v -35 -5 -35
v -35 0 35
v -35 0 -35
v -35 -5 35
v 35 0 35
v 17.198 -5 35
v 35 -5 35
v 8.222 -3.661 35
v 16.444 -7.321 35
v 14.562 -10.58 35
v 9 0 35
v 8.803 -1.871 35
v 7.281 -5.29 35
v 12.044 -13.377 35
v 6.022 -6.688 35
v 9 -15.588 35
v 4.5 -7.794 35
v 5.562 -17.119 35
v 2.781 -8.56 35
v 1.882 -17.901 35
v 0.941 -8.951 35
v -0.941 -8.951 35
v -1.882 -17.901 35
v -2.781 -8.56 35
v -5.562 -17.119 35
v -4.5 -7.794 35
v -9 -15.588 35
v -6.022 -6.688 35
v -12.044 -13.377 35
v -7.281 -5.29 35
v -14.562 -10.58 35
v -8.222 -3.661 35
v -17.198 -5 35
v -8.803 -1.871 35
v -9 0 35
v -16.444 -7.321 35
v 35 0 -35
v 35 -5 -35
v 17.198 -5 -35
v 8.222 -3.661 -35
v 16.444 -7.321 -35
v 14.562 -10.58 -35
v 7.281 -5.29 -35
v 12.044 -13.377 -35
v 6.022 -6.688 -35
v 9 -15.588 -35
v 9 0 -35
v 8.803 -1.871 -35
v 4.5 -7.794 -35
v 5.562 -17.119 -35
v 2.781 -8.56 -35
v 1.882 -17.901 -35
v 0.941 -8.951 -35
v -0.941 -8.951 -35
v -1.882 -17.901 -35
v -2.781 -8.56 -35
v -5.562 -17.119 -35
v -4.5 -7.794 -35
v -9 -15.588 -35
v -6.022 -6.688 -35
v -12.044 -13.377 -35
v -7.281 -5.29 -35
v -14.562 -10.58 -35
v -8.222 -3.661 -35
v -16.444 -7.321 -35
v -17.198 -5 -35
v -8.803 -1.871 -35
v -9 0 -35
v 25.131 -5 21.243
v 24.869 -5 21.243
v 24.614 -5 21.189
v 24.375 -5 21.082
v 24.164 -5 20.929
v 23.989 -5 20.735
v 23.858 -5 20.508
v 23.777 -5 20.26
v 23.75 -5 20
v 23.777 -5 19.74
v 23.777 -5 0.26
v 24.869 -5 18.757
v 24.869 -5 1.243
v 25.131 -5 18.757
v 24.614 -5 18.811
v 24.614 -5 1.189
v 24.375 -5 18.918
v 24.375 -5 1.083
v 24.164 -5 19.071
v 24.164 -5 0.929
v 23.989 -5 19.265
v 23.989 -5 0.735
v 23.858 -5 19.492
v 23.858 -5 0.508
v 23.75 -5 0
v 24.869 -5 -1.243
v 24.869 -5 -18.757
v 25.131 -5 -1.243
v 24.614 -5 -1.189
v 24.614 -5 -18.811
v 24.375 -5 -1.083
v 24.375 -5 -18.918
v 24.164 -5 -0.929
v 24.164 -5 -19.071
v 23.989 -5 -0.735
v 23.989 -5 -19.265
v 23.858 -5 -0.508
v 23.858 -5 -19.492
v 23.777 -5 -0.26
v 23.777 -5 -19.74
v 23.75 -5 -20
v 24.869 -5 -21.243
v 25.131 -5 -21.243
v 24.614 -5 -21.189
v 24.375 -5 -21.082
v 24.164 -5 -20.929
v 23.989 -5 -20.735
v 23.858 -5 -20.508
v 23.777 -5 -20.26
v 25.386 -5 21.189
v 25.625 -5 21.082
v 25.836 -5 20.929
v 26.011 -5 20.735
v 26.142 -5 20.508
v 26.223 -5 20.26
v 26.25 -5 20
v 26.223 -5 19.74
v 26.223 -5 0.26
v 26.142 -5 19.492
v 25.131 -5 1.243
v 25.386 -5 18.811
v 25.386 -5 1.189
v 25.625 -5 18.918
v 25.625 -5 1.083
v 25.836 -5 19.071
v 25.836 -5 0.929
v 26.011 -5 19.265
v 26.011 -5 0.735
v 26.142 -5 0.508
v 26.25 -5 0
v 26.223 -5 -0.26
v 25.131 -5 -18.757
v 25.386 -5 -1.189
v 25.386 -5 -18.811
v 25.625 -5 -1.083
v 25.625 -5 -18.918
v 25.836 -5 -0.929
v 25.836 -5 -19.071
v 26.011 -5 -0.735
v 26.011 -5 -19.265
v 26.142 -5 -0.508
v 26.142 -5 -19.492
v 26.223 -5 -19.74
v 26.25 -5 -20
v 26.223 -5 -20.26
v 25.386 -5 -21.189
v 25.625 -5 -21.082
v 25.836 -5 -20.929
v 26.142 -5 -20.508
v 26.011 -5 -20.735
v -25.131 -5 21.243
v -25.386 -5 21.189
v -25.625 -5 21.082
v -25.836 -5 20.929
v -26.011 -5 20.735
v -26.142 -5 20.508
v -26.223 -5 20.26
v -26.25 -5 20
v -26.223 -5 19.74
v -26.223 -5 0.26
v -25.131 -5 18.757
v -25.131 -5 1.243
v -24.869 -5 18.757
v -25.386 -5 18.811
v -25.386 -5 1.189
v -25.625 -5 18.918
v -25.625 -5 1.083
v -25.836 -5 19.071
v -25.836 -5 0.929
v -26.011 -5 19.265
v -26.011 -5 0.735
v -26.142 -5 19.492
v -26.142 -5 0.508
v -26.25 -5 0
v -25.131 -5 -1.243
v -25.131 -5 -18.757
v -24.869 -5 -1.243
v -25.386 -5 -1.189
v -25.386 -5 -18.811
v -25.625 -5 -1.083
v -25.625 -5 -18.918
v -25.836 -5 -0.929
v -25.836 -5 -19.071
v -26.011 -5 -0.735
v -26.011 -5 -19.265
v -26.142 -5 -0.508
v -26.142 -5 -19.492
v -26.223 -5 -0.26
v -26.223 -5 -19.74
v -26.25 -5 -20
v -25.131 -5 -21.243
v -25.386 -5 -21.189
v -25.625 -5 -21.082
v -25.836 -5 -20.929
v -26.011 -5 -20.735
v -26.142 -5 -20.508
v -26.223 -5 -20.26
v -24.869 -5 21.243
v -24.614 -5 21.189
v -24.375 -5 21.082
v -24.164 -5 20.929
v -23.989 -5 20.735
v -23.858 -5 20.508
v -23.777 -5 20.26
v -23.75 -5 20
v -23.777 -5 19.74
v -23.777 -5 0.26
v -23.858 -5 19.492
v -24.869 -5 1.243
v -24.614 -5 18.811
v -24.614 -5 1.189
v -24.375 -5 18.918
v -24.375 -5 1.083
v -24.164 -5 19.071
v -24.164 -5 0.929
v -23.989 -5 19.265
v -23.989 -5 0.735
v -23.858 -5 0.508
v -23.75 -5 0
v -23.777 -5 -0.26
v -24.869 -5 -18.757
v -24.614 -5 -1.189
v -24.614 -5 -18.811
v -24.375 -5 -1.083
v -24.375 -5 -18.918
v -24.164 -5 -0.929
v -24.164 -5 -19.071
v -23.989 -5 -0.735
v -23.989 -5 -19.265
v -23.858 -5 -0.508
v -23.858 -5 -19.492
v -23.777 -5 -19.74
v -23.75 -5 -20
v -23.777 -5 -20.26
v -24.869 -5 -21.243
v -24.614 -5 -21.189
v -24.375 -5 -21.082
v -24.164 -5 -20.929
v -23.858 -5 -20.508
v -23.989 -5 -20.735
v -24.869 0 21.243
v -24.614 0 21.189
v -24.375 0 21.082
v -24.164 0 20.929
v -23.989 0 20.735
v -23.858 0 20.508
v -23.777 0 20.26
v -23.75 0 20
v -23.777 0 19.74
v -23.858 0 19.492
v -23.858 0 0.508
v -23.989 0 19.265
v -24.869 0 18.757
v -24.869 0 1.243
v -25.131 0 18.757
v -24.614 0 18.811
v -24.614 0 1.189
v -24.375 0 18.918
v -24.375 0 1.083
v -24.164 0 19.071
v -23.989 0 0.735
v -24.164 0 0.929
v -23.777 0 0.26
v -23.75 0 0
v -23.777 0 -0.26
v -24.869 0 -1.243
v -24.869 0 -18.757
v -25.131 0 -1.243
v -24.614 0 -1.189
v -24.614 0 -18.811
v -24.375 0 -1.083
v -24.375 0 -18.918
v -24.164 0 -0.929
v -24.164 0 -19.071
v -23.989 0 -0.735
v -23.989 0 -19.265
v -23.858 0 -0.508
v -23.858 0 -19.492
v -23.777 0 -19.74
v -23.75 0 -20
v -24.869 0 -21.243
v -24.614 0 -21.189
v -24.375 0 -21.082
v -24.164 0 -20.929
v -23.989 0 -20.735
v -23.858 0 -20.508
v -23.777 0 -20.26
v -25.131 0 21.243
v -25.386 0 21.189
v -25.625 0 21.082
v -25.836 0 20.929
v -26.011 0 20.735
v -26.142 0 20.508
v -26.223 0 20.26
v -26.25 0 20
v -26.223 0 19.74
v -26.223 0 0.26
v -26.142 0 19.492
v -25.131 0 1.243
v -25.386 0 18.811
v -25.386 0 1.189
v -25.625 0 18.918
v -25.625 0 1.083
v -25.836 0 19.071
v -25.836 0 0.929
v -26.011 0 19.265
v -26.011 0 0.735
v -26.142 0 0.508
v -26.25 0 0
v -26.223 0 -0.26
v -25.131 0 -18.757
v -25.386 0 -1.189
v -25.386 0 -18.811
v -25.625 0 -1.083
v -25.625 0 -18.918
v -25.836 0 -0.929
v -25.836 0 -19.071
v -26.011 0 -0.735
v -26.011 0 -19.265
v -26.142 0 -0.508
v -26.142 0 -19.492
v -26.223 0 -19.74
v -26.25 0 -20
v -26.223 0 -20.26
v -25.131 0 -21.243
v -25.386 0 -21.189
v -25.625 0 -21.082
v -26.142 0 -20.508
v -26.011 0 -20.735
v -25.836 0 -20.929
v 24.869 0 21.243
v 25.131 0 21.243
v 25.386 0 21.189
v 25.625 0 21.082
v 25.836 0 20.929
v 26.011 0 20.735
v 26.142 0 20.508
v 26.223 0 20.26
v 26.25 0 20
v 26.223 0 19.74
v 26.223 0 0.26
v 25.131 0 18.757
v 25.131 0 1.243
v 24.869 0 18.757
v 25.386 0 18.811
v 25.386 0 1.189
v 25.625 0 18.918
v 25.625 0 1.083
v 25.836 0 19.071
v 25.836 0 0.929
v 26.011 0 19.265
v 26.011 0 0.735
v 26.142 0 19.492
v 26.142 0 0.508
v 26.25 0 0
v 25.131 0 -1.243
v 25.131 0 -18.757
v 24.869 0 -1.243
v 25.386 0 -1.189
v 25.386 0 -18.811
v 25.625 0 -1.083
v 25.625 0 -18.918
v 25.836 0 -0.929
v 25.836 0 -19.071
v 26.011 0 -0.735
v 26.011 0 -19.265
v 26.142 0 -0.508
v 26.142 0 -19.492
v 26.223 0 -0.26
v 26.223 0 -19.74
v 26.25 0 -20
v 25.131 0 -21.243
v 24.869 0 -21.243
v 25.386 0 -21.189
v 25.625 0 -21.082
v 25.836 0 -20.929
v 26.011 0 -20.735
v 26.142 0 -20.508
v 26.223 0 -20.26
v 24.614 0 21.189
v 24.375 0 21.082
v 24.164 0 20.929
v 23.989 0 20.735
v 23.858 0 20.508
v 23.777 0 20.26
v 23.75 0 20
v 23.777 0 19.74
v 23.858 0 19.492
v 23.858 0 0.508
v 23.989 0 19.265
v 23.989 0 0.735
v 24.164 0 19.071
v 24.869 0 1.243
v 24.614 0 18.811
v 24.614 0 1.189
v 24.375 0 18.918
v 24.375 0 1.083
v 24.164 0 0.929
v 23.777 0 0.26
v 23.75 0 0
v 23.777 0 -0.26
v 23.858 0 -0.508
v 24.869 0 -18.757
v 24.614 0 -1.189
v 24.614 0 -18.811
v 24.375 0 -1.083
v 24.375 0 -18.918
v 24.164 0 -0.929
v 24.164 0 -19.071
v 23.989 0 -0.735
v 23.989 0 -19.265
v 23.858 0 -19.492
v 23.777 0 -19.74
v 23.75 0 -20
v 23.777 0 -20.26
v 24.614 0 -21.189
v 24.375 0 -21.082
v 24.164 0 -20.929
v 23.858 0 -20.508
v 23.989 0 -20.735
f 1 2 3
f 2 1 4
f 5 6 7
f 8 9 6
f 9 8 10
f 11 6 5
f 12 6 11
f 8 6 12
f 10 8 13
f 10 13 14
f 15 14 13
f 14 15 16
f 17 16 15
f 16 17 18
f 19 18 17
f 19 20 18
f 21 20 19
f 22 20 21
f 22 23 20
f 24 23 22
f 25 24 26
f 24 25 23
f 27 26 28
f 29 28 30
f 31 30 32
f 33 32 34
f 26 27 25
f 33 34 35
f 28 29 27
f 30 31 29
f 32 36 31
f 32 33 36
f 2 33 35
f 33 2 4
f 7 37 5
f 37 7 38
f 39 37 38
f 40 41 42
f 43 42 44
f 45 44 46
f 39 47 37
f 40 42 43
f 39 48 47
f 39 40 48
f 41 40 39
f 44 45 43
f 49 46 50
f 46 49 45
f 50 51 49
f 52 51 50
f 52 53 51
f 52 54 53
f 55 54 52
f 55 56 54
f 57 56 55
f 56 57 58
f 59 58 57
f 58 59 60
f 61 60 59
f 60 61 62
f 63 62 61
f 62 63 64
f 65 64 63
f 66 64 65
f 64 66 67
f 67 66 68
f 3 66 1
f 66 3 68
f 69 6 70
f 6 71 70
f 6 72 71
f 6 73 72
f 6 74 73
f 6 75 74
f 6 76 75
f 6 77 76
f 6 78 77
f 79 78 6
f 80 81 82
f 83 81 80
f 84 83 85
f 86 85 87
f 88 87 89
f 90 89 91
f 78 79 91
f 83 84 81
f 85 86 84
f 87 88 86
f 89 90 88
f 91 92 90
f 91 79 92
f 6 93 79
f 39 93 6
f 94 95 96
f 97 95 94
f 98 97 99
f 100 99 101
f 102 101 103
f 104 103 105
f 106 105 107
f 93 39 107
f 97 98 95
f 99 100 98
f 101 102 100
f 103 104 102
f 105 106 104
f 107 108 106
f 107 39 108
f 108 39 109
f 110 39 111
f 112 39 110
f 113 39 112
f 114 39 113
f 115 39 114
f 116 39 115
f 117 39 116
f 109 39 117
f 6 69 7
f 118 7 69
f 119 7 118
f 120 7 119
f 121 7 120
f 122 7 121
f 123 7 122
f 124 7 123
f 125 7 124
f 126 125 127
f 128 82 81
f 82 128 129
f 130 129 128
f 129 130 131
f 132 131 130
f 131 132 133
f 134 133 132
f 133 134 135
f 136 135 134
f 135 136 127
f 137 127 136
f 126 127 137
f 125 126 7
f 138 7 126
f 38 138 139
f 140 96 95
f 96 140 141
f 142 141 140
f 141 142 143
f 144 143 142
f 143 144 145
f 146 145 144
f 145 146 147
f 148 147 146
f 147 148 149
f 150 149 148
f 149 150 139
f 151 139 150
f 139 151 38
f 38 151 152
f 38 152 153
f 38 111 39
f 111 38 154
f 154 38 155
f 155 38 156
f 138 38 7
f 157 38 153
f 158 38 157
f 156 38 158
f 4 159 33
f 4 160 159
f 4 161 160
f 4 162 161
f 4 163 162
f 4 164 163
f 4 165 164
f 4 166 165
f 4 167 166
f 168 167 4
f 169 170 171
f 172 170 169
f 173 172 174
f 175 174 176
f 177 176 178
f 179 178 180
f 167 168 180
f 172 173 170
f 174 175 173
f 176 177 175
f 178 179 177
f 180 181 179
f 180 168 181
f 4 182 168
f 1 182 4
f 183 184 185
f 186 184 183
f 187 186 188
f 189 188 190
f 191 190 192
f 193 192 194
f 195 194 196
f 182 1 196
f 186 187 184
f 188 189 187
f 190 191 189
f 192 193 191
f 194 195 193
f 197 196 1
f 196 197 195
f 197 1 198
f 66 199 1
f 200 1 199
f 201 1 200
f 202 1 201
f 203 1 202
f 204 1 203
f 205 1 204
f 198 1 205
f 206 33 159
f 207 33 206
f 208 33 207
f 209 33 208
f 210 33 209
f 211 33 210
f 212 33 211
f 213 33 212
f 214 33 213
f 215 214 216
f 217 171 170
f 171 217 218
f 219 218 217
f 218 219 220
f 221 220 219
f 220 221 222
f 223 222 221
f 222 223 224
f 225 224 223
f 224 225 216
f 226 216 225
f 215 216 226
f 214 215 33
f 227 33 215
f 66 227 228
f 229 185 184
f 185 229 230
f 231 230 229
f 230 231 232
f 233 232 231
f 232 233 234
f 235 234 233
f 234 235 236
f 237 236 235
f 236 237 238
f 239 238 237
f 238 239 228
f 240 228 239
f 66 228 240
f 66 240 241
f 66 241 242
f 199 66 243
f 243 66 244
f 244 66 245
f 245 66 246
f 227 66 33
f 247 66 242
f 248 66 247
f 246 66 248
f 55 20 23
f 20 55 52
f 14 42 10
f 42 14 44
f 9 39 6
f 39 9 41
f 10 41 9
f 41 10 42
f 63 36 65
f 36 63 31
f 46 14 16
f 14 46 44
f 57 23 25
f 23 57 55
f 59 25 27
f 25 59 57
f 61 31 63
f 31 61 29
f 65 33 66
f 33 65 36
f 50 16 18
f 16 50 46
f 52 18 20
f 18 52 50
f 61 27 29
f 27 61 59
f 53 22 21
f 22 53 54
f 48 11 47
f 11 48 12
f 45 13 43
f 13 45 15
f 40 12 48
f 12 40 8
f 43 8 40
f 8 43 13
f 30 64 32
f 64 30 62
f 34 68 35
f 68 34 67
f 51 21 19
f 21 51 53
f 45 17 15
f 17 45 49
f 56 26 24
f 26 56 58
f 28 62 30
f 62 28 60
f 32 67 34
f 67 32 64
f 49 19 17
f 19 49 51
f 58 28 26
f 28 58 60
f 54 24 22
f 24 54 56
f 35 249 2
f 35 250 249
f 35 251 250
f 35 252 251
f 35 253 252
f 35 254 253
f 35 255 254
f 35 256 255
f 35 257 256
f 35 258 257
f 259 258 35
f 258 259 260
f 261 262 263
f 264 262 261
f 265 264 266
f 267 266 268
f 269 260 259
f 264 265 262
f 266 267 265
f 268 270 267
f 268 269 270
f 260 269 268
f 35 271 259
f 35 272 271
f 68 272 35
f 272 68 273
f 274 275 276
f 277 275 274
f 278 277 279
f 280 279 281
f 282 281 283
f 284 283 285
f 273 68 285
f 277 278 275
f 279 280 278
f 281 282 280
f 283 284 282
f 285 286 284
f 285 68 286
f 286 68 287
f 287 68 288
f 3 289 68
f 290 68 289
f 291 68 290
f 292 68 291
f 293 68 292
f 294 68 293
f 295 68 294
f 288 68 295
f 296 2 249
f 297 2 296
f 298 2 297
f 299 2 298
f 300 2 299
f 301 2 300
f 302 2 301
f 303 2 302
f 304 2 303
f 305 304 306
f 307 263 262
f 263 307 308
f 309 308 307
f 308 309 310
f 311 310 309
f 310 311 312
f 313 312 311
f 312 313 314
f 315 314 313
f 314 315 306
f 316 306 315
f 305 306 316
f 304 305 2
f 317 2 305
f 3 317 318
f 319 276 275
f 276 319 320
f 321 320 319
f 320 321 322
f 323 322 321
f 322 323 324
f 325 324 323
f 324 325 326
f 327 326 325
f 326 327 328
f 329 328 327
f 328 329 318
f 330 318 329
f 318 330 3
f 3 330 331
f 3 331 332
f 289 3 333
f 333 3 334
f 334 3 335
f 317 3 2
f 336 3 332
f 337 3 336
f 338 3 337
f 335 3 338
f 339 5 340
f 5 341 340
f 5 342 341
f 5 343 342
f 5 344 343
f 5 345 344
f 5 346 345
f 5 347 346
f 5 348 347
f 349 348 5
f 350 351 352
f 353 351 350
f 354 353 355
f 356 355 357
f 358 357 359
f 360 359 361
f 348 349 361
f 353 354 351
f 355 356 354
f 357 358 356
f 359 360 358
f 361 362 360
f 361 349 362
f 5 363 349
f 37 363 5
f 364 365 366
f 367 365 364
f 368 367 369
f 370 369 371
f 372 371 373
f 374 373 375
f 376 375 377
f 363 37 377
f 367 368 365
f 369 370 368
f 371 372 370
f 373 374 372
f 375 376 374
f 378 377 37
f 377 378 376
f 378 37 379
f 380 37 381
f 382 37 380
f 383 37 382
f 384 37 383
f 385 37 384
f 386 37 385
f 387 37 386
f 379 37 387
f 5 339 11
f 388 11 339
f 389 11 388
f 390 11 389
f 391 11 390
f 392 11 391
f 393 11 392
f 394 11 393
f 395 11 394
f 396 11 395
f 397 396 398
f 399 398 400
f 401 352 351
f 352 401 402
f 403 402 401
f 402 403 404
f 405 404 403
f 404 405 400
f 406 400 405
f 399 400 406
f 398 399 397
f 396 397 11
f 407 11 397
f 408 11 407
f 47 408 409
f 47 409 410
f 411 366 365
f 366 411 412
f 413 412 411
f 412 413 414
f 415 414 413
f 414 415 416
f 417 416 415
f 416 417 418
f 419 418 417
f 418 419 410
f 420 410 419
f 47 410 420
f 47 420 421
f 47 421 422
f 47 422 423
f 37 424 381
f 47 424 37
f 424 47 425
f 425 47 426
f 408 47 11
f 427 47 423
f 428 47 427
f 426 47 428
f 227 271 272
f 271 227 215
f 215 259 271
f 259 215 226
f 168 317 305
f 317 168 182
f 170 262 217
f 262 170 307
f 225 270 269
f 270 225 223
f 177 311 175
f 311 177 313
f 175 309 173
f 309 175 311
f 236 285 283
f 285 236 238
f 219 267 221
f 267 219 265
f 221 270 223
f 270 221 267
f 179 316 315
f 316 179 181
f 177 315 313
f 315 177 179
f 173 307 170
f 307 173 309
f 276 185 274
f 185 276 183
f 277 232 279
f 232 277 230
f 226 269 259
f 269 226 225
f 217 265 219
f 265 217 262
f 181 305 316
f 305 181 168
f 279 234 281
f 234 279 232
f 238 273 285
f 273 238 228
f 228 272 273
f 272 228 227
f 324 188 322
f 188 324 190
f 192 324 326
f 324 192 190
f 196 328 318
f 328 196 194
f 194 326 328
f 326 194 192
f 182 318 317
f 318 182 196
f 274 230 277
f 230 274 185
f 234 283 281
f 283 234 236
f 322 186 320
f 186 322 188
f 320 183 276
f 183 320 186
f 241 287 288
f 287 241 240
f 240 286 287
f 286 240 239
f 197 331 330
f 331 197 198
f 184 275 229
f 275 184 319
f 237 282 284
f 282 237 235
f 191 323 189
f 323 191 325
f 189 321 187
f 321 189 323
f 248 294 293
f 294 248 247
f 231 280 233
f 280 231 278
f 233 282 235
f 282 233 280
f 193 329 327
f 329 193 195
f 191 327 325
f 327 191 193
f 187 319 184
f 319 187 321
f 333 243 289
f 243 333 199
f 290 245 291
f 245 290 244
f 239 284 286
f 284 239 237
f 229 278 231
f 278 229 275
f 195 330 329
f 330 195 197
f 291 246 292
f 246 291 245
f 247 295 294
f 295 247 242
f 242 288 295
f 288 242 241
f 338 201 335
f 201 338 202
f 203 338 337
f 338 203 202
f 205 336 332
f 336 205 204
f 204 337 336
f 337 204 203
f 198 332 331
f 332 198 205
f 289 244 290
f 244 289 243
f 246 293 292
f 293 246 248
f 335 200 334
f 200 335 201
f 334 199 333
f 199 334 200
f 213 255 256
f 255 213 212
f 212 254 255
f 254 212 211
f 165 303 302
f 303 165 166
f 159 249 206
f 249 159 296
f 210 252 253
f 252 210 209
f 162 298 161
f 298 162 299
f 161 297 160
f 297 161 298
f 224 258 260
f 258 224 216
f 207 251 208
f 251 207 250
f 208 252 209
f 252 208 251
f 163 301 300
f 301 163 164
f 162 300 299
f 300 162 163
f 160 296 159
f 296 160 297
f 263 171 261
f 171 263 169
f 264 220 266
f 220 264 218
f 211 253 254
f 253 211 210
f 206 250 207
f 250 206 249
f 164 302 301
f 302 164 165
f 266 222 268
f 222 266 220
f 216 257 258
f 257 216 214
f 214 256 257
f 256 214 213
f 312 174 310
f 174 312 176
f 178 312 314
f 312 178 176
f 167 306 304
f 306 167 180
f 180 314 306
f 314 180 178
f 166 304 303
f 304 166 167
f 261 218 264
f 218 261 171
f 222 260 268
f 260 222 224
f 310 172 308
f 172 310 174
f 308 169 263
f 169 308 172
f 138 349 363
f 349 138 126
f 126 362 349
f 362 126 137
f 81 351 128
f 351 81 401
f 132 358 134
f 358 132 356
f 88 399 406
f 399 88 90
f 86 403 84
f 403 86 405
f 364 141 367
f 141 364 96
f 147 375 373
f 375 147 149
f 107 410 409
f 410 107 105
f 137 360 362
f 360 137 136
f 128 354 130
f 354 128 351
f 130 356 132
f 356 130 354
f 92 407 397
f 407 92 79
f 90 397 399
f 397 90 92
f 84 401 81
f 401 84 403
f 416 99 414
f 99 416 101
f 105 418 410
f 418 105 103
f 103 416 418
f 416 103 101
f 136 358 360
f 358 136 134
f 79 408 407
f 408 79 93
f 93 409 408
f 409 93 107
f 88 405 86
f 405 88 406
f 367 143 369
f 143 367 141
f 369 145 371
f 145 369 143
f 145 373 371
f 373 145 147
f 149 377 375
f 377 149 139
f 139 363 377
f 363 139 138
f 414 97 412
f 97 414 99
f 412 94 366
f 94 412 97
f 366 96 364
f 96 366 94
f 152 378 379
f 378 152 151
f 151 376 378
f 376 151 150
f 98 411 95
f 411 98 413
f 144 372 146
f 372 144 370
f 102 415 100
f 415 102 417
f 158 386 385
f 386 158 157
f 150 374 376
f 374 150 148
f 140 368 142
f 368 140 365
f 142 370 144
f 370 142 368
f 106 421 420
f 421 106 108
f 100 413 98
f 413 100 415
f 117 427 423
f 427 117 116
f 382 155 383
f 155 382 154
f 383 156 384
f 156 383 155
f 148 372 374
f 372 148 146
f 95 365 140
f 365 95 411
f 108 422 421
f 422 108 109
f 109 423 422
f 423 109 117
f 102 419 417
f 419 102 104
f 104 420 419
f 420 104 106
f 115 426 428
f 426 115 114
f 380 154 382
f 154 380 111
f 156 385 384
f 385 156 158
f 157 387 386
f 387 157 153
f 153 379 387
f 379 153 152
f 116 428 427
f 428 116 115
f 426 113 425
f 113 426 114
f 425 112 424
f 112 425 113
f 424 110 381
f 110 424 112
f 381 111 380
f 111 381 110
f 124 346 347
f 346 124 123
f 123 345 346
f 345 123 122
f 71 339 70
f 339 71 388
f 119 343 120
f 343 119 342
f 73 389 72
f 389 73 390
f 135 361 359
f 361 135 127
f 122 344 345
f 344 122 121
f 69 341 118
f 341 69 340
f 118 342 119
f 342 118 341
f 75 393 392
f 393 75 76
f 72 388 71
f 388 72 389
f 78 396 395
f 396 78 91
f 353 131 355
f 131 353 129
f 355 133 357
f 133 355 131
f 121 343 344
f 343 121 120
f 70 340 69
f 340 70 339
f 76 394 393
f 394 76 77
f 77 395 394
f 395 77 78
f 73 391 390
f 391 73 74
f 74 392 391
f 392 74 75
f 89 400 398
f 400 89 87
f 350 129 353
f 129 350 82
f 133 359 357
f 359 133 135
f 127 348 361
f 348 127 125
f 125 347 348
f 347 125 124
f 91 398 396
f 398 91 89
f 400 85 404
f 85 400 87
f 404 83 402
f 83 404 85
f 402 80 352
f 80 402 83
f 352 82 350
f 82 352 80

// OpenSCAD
$fn=30;

difference() {
    halter();
    translate([-40,0,-40])
    cube([80,20,80]);
    
    translate([-25,2,0])
    rotate([90,0,0])
    cylinder(d=2.5,h=10);
    
    translate([-25,2,-20])
    rotate([90,0,0])
    cylinder(d=2.5,h=10);
    
    translate([-25,2,20])
    rotate([90,0,0])
    cylinder(d=2.5,h=10);

    translate([25,2,0])
    rotate([90,0,0])
    cylinder(d=2.5,h=10);
    
    translate([25,2,-20])
    rotate([90,0,0])
    cylinder(d=2.5,h=10);
    
    translate([25,2,20])
    rotate([90,0,0])
    cylinder(d=2.5,h=10);
    
}

module halter() {
    difference() {
        
        huelse();
        cylinder(d=18,h=75, center=true);
    }
}

module huelse() {
    
    cube([70,10,70], center=true);
    cylinder(d=36, h=70, center=true);
}
